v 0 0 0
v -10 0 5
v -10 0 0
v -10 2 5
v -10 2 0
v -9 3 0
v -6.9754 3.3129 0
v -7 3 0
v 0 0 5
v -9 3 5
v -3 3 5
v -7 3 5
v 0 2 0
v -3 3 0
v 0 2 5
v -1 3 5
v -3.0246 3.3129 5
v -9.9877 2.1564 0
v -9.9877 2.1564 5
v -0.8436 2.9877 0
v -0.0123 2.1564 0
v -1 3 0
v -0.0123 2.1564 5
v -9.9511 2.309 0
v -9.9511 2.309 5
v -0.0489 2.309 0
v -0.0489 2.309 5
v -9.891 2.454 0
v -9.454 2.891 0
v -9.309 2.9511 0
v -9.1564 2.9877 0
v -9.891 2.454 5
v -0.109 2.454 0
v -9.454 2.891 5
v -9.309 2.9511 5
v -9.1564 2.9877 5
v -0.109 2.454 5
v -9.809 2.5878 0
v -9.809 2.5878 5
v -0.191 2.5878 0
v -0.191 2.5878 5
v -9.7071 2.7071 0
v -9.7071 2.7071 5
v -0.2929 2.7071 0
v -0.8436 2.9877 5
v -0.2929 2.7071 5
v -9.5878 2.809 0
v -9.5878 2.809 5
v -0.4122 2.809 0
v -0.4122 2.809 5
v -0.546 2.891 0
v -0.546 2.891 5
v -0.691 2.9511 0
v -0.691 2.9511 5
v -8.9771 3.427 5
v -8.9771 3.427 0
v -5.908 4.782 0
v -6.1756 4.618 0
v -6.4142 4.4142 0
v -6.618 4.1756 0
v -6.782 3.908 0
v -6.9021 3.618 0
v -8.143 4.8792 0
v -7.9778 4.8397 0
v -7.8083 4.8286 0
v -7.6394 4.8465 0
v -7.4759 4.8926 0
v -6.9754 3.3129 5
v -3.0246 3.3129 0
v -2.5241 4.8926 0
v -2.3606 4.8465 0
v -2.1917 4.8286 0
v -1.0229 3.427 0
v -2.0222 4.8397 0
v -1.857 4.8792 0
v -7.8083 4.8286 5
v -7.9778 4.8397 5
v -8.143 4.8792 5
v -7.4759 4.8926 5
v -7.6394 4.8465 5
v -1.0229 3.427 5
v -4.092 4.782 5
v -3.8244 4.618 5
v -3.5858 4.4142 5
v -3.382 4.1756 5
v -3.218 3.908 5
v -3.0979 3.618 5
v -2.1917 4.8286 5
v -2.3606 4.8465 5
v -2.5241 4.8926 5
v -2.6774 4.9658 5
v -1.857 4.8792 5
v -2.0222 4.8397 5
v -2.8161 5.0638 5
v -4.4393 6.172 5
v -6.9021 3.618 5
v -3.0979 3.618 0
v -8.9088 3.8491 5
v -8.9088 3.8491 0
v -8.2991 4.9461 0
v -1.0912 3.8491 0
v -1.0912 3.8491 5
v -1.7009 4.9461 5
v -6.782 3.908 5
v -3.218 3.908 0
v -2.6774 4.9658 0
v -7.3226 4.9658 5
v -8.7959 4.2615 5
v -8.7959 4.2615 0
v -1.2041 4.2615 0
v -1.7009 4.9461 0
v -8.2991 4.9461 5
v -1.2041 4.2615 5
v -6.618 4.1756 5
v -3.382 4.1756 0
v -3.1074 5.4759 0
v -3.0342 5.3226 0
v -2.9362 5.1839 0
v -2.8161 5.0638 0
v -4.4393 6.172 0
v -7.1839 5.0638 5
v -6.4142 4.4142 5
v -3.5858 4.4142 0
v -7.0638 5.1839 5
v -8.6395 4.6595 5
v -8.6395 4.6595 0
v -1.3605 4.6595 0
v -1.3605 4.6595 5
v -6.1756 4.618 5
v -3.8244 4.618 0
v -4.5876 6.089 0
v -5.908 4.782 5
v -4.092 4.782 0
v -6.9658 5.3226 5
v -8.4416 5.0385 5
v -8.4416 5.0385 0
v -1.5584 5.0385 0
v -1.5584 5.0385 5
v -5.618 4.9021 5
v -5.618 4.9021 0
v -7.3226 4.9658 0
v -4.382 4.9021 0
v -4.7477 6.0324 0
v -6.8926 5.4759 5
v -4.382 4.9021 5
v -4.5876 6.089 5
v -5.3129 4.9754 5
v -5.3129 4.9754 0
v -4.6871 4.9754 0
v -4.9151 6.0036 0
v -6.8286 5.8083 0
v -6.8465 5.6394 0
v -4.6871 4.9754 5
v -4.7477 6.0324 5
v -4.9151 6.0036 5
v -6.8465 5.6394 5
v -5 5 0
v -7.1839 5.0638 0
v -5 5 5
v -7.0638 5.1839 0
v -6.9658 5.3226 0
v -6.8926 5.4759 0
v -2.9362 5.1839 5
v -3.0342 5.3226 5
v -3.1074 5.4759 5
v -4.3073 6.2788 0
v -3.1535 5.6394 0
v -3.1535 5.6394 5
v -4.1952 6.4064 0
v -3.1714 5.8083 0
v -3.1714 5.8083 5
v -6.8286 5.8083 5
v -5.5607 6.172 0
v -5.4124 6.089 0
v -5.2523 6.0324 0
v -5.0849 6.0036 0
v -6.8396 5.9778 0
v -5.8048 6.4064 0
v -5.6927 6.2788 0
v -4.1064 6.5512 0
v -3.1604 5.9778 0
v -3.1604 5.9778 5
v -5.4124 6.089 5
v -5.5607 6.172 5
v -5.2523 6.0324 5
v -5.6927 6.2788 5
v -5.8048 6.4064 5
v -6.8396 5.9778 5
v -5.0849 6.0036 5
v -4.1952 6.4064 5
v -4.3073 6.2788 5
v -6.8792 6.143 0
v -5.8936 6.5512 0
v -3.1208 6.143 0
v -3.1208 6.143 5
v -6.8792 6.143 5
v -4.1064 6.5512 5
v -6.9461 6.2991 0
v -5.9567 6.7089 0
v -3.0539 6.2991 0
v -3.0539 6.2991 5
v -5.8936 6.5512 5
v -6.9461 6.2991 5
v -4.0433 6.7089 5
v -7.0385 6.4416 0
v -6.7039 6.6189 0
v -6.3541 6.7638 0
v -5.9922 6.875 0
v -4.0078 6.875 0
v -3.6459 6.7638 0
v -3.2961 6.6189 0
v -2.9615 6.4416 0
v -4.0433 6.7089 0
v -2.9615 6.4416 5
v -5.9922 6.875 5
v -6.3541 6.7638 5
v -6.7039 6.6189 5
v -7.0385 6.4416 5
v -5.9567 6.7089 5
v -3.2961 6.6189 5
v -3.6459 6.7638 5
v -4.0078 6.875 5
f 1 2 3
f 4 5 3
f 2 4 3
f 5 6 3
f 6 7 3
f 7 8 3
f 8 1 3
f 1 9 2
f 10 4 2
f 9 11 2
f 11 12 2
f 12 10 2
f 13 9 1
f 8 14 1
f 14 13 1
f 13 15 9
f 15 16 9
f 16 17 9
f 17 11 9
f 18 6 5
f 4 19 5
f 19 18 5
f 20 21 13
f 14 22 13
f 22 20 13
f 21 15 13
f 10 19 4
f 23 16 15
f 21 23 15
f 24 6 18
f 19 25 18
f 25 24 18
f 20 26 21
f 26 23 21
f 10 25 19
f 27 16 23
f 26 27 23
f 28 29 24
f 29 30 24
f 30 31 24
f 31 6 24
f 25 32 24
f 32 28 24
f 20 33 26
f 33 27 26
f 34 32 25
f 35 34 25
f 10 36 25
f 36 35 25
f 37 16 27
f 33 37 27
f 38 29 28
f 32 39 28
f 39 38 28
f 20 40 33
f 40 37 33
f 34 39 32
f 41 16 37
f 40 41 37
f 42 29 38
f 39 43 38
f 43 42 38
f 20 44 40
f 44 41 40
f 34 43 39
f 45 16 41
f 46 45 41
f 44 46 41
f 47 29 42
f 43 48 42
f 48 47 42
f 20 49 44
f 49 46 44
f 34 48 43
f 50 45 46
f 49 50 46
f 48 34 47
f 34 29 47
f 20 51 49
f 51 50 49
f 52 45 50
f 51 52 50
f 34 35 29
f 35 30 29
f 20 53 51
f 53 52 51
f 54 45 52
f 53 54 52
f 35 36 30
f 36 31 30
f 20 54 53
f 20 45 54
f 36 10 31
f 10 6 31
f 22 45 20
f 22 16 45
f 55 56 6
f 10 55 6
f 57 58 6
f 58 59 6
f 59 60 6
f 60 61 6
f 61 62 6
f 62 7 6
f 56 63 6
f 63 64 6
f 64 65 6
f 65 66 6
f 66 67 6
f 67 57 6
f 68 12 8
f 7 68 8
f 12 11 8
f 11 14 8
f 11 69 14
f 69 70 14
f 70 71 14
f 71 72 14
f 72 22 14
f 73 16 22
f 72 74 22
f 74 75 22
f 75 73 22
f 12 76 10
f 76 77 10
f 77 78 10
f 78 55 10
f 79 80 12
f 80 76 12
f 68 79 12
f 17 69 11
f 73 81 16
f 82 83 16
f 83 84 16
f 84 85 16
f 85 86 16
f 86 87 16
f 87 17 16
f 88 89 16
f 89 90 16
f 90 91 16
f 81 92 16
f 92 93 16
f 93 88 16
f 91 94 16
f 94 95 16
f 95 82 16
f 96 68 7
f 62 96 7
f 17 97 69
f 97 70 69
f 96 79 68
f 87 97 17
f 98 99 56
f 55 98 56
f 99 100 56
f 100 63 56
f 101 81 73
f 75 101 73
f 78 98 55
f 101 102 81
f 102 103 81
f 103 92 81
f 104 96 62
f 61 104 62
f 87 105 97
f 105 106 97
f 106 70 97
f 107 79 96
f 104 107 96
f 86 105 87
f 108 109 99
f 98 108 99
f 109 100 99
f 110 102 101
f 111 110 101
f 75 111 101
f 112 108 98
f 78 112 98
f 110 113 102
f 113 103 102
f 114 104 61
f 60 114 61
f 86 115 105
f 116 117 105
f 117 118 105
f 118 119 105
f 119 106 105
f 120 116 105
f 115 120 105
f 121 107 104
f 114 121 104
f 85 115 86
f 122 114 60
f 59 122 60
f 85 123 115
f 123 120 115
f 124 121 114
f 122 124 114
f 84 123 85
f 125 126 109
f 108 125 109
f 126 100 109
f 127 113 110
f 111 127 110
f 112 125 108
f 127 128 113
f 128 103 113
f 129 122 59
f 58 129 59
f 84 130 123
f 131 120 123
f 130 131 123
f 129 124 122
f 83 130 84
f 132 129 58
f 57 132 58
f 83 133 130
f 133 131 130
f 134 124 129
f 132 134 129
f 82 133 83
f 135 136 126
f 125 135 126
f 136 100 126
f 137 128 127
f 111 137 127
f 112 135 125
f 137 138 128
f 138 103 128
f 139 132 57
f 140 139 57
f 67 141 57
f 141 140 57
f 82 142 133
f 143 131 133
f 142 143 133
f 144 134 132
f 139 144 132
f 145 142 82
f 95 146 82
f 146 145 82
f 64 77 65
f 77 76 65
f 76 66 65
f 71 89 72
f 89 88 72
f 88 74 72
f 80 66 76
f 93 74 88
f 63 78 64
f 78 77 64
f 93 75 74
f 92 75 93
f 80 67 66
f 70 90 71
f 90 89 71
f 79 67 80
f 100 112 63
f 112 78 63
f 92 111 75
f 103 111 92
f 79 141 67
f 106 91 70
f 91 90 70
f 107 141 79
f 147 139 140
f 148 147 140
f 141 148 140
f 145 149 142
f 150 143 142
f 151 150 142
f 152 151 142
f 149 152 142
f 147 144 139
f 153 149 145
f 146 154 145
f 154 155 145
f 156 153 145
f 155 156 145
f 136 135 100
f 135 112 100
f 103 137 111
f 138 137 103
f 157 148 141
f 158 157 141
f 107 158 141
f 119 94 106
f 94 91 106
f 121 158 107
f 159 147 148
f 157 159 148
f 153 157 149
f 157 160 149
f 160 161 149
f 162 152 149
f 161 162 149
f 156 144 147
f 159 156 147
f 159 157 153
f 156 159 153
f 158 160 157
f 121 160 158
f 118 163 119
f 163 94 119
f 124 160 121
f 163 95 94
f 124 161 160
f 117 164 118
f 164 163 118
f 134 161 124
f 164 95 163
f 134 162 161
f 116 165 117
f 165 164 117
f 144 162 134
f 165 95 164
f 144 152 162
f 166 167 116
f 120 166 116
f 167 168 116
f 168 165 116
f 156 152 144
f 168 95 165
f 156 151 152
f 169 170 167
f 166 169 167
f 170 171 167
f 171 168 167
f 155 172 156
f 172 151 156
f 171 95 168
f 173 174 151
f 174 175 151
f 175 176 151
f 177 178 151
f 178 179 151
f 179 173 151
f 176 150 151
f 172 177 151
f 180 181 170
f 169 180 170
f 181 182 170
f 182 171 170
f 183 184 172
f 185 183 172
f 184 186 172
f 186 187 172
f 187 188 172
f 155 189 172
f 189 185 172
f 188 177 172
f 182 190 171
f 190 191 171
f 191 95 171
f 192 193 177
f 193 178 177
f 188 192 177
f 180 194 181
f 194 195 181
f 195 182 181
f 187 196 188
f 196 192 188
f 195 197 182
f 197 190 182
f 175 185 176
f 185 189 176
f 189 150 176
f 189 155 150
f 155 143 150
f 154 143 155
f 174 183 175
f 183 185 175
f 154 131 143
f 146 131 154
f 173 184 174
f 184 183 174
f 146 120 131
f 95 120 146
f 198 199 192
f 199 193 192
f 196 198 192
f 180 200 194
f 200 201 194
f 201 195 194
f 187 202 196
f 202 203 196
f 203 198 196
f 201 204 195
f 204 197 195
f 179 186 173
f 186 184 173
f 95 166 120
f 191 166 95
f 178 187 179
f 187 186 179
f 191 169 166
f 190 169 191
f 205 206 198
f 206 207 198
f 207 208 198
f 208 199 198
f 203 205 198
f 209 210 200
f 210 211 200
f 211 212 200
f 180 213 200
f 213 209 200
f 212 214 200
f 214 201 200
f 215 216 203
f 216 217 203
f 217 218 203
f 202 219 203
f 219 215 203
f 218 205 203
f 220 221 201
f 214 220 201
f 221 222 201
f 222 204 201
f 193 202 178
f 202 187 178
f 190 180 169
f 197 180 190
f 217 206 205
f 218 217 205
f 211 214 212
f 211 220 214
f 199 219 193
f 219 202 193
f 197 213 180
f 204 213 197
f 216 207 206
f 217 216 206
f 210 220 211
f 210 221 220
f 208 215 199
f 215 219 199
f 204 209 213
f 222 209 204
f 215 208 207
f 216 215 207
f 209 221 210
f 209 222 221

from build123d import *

# Parameters (mm, degrees)
BOSS_EXTRUDE1_DEPTH = 5
SKETCH2_R           = 1
CUT_EXTRUDE1_DEPTH  = 5
FILLET1_R           = 1


with BuildPart() as part:
    # Sketch1 → Boss-Extrude1 (new body)
    with BuildSketch(Plane.XY):
        with BuildLine():
            Line((0, 0), (0, 3))
            Line((0, 3), (-1, 3))
            ThreePointArc((-1, 3), (-5, 7), (-9, 3))
            Line((-9, 3), (-10, 3))
            Line((-10, 3), (-10, 0))
            Line((-10, 0), (0, 0))
        make_face()
        with BuildLine():
            ThreePointArc((-7, 3), (-5, 5), (-3, 3))
            Line((-3, 3), (-7, 3))
        make_face(mode=Mode.SUBTRACT)
    extrude(amount=BOSS_EXTRUDE1_DEPTH)

    # Sketch2 → Cut-Extrude1 (cut)
    with BuildSketch(Plane.XY.offset(5)):
        with Locations((-5, 7)):
            Circle(SKETCH2_R)
        with Locations((-2.171572875, 5.828427125)):
            Circle(SKETCH2_R)
        with Locations((-7.828427125, 5.828427125)):
            Circle(SKETCH2_R)
    extrude(amount=-CUT_EXTRUDE1_DEPTH, mode=Mode.SUBTRACT)

    # Fillet1
    fillet1_edges = [part.edges().sort_by_distance(p)[0] for p in [
        (0, 3, 2.5),
        (-10, 3, 2.5),
    ]]
    fillet(fillet1_edges, radius=FILLET1_R - 0.0001)  # a hair under: the kernel refuses the full size


solid = part.part
